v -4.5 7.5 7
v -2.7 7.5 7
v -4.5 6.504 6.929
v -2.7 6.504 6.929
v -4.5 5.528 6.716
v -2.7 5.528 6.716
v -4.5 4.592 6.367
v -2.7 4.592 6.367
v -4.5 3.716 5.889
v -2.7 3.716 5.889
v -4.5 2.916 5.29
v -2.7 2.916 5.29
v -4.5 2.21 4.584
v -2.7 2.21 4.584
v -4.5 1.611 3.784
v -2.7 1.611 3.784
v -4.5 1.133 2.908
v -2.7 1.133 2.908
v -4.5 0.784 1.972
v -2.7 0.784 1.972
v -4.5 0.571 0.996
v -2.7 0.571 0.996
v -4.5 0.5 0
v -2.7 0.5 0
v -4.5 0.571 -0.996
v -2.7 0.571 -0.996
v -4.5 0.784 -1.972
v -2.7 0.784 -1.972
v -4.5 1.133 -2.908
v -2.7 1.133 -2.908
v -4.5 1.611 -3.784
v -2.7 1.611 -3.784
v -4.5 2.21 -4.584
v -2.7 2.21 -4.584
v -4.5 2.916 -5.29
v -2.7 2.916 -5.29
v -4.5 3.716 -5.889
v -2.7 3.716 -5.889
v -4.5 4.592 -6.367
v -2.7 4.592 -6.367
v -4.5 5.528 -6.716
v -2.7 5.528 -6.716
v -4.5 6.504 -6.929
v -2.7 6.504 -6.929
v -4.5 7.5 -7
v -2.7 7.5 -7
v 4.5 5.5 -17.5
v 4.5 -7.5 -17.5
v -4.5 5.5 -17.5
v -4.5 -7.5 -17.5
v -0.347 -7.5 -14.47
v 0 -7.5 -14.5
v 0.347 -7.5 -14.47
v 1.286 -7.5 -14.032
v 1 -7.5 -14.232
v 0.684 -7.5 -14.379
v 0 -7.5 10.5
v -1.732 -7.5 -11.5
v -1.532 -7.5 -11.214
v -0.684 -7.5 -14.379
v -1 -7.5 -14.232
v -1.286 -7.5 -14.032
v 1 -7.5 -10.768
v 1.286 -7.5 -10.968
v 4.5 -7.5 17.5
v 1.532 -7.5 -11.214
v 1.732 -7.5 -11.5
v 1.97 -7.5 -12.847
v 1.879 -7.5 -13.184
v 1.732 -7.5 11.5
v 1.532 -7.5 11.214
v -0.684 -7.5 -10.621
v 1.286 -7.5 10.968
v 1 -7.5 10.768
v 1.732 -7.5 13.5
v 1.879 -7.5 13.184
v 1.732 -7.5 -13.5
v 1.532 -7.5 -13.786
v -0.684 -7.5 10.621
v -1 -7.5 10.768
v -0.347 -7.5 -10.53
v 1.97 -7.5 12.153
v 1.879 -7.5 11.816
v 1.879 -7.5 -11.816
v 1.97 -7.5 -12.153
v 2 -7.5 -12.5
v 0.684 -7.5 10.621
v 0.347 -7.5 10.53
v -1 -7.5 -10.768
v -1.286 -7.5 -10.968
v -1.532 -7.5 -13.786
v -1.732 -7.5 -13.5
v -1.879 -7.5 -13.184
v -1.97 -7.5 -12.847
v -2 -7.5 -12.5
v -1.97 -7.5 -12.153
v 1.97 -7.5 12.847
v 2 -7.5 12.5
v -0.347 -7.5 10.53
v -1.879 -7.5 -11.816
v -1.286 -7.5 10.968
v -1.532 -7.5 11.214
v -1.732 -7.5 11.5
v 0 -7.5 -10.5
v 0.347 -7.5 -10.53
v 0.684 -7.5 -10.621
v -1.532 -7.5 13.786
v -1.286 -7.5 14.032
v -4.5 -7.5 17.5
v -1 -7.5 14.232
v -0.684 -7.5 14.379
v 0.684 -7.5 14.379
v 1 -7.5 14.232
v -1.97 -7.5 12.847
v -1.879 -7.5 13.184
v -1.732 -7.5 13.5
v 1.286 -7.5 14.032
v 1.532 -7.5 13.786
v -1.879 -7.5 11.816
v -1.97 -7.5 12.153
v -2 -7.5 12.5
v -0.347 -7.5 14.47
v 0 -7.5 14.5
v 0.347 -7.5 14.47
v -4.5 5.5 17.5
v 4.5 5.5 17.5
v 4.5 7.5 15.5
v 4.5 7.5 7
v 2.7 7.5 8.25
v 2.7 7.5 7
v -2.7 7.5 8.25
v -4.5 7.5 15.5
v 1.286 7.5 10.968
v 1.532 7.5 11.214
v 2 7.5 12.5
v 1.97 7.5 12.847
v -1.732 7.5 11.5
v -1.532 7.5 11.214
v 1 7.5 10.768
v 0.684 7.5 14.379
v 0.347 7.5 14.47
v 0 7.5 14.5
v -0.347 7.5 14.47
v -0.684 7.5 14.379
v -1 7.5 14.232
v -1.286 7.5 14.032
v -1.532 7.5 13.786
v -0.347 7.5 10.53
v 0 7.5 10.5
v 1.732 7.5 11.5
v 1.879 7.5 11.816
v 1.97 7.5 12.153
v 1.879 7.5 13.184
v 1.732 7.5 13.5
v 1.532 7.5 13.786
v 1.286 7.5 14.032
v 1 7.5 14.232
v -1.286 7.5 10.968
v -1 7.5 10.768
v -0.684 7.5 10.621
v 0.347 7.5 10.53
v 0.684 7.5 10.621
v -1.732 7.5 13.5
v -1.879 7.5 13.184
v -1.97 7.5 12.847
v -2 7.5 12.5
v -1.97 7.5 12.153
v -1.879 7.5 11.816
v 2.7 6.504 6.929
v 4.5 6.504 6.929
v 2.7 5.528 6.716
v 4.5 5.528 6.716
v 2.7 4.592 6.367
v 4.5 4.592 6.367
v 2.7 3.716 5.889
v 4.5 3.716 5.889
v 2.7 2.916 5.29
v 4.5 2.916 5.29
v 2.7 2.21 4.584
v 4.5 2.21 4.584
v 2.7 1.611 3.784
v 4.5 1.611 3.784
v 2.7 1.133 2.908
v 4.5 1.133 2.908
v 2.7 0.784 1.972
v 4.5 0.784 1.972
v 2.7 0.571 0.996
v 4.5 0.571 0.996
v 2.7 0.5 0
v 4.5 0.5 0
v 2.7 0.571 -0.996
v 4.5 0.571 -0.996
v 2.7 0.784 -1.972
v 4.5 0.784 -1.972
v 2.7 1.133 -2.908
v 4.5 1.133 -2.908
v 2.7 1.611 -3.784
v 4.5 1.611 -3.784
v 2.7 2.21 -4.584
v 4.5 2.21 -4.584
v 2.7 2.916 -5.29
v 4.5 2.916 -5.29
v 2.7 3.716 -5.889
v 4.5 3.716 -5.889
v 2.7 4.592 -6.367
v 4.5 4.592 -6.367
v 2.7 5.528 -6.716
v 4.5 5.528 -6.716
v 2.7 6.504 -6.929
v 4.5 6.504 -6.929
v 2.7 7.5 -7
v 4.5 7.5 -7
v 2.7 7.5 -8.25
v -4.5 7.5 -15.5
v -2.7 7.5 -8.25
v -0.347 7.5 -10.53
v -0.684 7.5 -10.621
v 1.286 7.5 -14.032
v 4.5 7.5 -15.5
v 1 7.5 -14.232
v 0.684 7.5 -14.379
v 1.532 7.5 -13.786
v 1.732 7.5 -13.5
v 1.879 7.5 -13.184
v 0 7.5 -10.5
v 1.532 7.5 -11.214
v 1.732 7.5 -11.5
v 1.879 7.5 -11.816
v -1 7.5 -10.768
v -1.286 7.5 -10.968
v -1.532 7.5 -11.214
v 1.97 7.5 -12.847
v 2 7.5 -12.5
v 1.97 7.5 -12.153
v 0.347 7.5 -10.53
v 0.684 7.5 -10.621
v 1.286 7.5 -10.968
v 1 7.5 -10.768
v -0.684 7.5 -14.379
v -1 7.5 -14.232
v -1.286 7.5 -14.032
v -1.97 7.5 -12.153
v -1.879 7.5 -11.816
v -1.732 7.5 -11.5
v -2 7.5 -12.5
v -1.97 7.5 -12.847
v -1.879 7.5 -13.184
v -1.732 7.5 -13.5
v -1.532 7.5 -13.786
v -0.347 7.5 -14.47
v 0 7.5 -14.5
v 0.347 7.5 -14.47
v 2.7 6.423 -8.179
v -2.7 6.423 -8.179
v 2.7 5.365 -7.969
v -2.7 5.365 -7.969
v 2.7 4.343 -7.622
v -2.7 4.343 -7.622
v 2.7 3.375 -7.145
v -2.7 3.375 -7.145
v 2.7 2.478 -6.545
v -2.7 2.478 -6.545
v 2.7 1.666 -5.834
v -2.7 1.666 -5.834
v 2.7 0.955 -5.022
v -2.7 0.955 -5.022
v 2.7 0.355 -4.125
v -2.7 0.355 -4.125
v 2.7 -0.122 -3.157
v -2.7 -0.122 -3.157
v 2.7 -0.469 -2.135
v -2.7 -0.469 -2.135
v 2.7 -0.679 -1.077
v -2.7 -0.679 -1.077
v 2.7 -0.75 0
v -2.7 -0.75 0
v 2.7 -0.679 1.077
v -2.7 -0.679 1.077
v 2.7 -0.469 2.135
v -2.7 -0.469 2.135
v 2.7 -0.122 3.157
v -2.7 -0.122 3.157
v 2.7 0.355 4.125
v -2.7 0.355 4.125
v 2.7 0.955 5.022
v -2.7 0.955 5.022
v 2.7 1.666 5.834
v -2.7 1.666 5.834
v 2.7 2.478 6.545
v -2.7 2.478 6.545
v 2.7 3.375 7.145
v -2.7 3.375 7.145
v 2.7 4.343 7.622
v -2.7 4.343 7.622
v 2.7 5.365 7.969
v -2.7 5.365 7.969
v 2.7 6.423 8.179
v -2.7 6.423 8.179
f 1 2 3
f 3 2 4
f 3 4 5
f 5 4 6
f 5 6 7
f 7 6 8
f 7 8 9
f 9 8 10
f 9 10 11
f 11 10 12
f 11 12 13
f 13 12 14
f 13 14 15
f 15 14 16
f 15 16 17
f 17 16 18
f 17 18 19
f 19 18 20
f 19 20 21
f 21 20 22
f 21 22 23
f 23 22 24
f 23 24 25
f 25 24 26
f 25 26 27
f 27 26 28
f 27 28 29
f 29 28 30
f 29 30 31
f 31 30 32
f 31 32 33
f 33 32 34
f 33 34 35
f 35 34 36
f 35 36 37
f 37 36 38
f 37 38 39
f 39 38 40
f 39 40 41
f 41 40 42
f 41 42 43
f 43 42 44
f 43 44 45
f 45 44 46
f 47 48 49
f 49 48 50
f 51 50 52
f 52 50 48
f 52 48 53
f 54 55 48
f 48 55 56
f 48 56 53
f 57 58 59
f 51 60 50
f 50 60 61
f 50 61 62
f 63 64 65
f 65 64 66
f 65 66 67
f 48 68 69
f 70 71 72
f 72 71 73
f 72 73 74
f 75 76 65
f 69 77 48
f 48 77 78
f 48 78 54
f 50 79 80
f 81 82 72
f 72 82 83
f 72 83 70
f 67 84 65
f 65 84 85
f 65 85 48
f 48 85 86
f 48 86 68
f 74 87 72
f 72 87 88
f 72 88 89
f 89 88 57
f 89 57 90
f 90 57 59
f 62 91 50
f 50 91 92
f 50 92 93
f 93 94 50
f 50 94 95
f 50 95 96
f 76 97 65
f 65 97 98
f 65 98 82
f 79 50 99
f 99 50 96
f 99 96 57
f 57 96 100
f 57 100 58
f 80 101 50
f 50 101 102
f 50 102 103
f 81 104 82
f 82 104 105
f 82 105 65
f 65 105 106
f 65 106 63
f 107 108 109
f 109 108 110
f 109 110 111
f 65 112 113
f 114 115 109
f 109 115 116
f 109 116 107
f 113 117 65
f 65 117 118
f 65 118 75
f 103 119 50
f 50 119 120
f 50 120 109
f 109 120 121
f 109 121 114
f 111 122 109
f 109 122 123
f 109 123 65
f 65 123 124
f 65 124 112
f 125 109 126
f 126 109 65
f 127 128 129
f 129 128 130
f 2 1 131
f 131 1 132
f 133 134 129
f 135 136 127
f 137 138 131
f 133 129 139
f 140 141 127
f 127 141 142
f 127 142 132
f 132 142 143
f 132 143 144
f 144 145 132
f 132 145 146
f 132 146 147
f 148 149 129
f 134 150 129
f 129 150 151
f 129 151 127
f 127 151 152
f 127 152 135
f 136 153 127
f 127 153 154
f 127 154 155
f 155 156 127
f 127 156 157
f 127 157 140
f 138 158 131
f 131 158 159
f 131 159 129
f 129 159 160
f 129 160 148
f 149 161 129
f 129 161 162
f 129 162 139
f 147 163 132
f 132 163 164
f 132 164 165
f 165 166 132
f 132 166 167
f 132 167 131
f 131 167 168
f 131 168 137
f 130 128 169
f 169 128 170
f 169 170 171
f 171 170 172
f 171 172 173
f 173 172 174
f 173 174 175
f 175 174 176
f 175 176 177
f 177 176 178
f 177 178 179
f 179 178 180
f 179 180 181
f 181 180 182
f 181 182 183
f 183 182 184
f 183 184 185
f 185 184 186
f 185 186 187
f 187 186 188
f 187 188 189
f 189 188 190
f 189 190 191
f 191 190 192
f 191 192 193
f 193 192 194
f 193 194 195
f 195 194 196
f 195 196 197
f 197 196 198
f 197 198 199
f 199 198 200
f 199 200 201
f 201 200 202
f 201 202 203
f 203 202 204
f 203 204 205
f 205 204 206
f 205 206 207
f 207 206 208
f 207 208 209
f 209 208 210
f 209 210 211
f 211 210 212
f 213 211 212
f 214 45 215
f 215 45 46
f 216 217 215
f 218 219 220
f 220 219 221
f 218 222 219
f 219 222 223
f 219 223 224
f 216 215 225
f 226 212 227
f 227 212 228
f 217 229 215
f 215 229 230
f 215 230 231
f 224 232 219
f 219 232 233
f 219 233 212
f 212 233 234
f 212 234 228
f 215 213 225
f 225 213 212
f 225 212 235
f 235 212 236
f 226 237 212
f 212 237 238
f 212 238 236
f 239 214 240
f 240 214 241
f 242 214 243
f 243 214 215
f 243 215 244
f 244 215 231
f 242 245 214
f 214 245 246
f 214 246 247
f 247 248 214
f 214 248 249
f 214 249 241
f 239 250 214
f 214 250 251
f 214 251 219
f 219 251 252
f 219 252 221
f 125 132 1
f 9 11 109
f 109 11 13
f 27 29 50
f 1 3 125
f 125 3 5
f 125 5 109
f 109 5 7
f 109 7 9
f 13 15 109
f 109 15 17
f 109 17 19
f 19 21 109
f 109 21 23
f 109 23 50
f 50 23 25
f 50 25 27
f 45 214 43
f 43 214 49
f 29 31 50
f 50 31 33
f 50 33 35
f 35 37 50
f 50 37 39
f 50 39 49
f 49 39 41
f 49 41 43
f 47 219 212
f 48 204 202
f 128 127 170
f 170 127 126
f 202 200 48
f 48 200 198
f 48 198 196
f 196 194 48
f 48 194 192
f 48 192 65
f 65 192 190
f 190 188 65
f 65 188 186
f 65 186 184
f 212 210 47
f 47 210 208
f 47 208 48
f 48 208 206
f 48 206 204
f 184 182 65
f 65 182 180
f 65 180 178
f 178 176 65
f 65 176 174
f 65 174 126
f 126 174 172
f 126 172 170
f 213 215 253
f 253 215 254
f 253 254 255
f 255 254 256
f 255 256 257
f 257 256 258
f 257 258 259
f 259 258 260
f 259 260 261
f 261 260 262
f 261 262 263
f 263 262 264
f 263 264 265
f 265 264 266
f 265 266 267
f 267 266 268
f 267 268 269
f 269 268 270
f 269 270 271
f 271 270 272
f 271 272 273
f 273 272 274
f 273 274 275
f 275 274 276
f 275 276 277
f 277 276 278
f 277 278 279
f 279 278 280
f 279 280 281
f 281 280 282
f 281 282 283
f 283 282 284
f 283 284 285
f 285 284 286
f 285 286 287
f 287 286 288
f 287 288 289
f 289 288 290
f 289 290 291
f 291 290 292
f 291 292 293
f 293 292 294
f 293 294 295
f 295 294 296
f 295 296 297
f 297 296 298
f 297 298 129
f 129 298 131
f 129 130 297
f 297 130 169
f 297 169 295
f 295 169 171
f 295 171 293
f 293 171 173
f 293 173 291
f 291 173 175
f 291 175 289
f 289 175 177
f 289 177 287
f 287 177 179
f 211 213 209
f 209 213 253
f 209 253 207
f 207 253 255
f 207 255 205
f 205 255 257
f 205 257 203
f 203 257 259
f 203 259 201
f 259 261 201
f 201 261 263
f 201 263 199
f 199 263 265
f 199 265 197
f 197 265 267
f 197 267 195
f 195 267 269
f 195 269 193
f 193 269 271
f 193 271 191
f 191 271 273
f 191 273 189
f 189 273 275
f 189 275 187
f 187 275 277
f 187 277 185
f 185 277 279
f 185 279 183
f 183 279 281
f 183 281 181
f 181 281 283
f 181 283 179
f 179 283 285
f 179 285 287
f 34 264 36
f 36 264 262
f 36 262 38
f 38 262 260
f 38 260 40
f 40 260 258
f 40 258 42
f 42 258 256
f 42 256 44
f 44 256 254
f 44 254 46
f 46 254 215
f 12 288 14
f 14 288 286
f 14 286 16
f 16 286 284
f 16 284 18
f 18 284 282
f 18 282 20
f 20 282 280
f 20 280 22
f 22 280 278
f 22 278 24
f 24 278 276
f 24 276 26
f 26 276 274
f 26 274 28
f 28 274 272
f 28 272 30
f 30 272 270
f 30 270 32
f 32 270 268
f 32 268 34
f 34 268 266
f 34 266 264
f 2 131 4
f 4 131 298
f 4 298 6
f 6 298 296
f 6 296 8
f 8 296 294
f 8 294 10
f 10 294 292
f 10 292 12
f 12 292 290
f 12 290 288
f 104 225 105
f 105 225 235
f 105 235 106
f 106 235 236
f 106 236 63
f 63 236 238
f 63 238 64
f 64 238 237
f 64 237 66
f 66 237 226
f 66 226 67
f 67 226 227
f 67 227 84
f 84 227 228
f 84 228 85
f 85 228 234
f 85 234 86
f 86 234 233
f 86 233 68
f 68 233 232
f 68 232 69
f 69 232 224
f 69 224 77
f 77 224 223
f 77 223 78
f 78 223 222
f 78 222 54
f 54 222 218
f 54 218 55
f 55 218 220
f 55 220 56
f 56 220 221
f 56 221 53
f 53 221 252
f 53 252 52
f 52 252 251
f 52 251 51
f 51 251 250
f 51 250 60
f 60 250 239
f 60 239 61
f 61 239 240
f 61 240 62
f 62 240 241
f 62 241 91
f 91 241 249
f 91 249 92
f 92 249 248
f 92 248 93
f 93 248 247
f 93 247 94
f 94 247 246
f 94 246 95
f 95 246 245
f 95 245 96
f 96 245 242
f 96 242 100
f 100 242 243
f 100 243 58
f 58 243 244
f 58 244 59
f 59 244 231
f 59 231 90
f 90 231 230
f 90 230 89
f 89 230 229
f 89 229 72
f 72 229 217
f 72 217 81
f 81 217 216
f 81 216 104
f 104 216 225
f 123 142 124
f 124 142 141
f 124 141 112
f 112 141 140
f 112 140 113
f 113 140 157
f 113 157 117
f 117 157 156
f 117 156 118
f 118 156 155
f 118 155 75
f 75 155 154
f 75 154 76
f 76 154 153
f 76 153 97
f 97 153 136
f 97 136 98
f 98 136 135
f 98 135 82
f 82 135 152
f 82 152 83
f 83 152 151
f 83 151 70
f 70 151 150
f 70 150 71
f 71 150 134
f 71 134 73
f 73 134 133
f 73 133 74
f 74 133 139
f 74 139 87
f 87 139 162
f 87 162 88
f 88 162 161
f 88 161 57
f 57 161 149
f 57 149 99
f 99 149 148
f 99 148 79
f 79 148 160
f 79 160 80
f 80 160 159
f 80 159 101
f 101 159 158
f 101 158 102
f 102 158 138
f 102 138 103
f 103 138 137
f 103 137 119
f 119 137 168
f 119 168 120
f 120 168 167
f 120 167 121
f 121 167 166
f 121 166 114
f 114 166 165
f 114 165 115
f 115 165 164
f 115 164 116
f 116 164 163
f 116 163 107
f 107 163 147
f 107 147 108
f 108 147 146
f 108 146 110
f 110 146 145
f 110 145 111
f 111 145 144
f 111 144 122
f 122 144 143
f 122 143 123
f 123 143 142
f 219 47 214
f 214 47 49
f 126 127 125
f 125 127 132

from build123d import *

# Parameters (mm, degrees)
BOSS_EXTRUDE1_DEPTH      = 4.5
BOSS_EXTRUDE1_DEPTH_BACK = 4.5
CUT_EXTRUDE1_DEPTH       = 2.7
CUT_EXTRUDE1_DEPTH_BACK  = 2.7
SKETCH2_R                = 8.25
SKETCH3_R                = 2
CUT_EXTRUDE3_DEPTH       = 24.484037132
CHAMFER1_SIZE            = 2


with BuildPart() as part:
    # Sketch1 → Boss-Extrude1 (new, two sides: drawn at the far end of the back side and taken through both)
    with BuildSketch(Plane(origin=(0, 0, 0), x_dir=(0, 0, -1), z_dir=(1, 0, 0)).offset(-BOSS_EXTRUDE1_DEPTH_BACK)):
        with BuildLine():
            Line((7, 7.5), (17.5, 7.5))
            Line((17.5, 7.5), (17.5, -7.5))
            Line((17.5, -7.5), (-17.5, -7.5))
            Line((-17.5, -7.5), (-17.5, 7.5))
            Line((-17.5, 7.5), (-7, 7.5))
            ThreePointArc((-7, 7.5), (0, 0.5), (7, 7.5))
        make_face()
    extrude(amount=BOSS_EXTRUDE1_DEPTH + BOSS_EXTRUDE1_DEPTH_BACK)

    # Sketch2 → Cut-Extrude1 (cut, two sides: drawn at the far end of the back side and taken through both)
    with BuildSketch(Plane(origin=(0, 0, 0), x_dir=(0, 0, -1), z_dir=(1, 0, 0)).offset(-CUT_EXTRUDE1_DEPTH_BACK)):
        with Locations((0, 7.5)):
            Circle(SKETCH2_R)
    extrude(amount=CUT_EXTRUDE1_DEPTH + CUT_EXTRUDE1_DEPTH_BACK, mode=Mode.SUBTRACT)

    # Sketch3 → Cut-Extrude3 (cut, through all)
    with BuildSketch(Plane(origin=(0, 7.5, 0), x_dir=(1, 0, 0), z_dir=(0, 1, 0))):
        with Locations((0, 12.5)):
            Circle(SKETCH3_R)
        with Locations((0, -12.5)):
            Circle(SKETCH3_R)
    extrude(amount=-CUT_EXTRUDE3_DEPTH, mode=Mode.SUBTRACT)

    # Chamfer1
    chamfer1_edges = [part.edges().sort_by_distance(p)[0] for p in [
        (0, 7.5, -17.5),
        (0, 7.5, 17.5),
    ]]
    chamfer(chamfer1_edges, length=CHAMFER1_SIZE)


solid = part.part
